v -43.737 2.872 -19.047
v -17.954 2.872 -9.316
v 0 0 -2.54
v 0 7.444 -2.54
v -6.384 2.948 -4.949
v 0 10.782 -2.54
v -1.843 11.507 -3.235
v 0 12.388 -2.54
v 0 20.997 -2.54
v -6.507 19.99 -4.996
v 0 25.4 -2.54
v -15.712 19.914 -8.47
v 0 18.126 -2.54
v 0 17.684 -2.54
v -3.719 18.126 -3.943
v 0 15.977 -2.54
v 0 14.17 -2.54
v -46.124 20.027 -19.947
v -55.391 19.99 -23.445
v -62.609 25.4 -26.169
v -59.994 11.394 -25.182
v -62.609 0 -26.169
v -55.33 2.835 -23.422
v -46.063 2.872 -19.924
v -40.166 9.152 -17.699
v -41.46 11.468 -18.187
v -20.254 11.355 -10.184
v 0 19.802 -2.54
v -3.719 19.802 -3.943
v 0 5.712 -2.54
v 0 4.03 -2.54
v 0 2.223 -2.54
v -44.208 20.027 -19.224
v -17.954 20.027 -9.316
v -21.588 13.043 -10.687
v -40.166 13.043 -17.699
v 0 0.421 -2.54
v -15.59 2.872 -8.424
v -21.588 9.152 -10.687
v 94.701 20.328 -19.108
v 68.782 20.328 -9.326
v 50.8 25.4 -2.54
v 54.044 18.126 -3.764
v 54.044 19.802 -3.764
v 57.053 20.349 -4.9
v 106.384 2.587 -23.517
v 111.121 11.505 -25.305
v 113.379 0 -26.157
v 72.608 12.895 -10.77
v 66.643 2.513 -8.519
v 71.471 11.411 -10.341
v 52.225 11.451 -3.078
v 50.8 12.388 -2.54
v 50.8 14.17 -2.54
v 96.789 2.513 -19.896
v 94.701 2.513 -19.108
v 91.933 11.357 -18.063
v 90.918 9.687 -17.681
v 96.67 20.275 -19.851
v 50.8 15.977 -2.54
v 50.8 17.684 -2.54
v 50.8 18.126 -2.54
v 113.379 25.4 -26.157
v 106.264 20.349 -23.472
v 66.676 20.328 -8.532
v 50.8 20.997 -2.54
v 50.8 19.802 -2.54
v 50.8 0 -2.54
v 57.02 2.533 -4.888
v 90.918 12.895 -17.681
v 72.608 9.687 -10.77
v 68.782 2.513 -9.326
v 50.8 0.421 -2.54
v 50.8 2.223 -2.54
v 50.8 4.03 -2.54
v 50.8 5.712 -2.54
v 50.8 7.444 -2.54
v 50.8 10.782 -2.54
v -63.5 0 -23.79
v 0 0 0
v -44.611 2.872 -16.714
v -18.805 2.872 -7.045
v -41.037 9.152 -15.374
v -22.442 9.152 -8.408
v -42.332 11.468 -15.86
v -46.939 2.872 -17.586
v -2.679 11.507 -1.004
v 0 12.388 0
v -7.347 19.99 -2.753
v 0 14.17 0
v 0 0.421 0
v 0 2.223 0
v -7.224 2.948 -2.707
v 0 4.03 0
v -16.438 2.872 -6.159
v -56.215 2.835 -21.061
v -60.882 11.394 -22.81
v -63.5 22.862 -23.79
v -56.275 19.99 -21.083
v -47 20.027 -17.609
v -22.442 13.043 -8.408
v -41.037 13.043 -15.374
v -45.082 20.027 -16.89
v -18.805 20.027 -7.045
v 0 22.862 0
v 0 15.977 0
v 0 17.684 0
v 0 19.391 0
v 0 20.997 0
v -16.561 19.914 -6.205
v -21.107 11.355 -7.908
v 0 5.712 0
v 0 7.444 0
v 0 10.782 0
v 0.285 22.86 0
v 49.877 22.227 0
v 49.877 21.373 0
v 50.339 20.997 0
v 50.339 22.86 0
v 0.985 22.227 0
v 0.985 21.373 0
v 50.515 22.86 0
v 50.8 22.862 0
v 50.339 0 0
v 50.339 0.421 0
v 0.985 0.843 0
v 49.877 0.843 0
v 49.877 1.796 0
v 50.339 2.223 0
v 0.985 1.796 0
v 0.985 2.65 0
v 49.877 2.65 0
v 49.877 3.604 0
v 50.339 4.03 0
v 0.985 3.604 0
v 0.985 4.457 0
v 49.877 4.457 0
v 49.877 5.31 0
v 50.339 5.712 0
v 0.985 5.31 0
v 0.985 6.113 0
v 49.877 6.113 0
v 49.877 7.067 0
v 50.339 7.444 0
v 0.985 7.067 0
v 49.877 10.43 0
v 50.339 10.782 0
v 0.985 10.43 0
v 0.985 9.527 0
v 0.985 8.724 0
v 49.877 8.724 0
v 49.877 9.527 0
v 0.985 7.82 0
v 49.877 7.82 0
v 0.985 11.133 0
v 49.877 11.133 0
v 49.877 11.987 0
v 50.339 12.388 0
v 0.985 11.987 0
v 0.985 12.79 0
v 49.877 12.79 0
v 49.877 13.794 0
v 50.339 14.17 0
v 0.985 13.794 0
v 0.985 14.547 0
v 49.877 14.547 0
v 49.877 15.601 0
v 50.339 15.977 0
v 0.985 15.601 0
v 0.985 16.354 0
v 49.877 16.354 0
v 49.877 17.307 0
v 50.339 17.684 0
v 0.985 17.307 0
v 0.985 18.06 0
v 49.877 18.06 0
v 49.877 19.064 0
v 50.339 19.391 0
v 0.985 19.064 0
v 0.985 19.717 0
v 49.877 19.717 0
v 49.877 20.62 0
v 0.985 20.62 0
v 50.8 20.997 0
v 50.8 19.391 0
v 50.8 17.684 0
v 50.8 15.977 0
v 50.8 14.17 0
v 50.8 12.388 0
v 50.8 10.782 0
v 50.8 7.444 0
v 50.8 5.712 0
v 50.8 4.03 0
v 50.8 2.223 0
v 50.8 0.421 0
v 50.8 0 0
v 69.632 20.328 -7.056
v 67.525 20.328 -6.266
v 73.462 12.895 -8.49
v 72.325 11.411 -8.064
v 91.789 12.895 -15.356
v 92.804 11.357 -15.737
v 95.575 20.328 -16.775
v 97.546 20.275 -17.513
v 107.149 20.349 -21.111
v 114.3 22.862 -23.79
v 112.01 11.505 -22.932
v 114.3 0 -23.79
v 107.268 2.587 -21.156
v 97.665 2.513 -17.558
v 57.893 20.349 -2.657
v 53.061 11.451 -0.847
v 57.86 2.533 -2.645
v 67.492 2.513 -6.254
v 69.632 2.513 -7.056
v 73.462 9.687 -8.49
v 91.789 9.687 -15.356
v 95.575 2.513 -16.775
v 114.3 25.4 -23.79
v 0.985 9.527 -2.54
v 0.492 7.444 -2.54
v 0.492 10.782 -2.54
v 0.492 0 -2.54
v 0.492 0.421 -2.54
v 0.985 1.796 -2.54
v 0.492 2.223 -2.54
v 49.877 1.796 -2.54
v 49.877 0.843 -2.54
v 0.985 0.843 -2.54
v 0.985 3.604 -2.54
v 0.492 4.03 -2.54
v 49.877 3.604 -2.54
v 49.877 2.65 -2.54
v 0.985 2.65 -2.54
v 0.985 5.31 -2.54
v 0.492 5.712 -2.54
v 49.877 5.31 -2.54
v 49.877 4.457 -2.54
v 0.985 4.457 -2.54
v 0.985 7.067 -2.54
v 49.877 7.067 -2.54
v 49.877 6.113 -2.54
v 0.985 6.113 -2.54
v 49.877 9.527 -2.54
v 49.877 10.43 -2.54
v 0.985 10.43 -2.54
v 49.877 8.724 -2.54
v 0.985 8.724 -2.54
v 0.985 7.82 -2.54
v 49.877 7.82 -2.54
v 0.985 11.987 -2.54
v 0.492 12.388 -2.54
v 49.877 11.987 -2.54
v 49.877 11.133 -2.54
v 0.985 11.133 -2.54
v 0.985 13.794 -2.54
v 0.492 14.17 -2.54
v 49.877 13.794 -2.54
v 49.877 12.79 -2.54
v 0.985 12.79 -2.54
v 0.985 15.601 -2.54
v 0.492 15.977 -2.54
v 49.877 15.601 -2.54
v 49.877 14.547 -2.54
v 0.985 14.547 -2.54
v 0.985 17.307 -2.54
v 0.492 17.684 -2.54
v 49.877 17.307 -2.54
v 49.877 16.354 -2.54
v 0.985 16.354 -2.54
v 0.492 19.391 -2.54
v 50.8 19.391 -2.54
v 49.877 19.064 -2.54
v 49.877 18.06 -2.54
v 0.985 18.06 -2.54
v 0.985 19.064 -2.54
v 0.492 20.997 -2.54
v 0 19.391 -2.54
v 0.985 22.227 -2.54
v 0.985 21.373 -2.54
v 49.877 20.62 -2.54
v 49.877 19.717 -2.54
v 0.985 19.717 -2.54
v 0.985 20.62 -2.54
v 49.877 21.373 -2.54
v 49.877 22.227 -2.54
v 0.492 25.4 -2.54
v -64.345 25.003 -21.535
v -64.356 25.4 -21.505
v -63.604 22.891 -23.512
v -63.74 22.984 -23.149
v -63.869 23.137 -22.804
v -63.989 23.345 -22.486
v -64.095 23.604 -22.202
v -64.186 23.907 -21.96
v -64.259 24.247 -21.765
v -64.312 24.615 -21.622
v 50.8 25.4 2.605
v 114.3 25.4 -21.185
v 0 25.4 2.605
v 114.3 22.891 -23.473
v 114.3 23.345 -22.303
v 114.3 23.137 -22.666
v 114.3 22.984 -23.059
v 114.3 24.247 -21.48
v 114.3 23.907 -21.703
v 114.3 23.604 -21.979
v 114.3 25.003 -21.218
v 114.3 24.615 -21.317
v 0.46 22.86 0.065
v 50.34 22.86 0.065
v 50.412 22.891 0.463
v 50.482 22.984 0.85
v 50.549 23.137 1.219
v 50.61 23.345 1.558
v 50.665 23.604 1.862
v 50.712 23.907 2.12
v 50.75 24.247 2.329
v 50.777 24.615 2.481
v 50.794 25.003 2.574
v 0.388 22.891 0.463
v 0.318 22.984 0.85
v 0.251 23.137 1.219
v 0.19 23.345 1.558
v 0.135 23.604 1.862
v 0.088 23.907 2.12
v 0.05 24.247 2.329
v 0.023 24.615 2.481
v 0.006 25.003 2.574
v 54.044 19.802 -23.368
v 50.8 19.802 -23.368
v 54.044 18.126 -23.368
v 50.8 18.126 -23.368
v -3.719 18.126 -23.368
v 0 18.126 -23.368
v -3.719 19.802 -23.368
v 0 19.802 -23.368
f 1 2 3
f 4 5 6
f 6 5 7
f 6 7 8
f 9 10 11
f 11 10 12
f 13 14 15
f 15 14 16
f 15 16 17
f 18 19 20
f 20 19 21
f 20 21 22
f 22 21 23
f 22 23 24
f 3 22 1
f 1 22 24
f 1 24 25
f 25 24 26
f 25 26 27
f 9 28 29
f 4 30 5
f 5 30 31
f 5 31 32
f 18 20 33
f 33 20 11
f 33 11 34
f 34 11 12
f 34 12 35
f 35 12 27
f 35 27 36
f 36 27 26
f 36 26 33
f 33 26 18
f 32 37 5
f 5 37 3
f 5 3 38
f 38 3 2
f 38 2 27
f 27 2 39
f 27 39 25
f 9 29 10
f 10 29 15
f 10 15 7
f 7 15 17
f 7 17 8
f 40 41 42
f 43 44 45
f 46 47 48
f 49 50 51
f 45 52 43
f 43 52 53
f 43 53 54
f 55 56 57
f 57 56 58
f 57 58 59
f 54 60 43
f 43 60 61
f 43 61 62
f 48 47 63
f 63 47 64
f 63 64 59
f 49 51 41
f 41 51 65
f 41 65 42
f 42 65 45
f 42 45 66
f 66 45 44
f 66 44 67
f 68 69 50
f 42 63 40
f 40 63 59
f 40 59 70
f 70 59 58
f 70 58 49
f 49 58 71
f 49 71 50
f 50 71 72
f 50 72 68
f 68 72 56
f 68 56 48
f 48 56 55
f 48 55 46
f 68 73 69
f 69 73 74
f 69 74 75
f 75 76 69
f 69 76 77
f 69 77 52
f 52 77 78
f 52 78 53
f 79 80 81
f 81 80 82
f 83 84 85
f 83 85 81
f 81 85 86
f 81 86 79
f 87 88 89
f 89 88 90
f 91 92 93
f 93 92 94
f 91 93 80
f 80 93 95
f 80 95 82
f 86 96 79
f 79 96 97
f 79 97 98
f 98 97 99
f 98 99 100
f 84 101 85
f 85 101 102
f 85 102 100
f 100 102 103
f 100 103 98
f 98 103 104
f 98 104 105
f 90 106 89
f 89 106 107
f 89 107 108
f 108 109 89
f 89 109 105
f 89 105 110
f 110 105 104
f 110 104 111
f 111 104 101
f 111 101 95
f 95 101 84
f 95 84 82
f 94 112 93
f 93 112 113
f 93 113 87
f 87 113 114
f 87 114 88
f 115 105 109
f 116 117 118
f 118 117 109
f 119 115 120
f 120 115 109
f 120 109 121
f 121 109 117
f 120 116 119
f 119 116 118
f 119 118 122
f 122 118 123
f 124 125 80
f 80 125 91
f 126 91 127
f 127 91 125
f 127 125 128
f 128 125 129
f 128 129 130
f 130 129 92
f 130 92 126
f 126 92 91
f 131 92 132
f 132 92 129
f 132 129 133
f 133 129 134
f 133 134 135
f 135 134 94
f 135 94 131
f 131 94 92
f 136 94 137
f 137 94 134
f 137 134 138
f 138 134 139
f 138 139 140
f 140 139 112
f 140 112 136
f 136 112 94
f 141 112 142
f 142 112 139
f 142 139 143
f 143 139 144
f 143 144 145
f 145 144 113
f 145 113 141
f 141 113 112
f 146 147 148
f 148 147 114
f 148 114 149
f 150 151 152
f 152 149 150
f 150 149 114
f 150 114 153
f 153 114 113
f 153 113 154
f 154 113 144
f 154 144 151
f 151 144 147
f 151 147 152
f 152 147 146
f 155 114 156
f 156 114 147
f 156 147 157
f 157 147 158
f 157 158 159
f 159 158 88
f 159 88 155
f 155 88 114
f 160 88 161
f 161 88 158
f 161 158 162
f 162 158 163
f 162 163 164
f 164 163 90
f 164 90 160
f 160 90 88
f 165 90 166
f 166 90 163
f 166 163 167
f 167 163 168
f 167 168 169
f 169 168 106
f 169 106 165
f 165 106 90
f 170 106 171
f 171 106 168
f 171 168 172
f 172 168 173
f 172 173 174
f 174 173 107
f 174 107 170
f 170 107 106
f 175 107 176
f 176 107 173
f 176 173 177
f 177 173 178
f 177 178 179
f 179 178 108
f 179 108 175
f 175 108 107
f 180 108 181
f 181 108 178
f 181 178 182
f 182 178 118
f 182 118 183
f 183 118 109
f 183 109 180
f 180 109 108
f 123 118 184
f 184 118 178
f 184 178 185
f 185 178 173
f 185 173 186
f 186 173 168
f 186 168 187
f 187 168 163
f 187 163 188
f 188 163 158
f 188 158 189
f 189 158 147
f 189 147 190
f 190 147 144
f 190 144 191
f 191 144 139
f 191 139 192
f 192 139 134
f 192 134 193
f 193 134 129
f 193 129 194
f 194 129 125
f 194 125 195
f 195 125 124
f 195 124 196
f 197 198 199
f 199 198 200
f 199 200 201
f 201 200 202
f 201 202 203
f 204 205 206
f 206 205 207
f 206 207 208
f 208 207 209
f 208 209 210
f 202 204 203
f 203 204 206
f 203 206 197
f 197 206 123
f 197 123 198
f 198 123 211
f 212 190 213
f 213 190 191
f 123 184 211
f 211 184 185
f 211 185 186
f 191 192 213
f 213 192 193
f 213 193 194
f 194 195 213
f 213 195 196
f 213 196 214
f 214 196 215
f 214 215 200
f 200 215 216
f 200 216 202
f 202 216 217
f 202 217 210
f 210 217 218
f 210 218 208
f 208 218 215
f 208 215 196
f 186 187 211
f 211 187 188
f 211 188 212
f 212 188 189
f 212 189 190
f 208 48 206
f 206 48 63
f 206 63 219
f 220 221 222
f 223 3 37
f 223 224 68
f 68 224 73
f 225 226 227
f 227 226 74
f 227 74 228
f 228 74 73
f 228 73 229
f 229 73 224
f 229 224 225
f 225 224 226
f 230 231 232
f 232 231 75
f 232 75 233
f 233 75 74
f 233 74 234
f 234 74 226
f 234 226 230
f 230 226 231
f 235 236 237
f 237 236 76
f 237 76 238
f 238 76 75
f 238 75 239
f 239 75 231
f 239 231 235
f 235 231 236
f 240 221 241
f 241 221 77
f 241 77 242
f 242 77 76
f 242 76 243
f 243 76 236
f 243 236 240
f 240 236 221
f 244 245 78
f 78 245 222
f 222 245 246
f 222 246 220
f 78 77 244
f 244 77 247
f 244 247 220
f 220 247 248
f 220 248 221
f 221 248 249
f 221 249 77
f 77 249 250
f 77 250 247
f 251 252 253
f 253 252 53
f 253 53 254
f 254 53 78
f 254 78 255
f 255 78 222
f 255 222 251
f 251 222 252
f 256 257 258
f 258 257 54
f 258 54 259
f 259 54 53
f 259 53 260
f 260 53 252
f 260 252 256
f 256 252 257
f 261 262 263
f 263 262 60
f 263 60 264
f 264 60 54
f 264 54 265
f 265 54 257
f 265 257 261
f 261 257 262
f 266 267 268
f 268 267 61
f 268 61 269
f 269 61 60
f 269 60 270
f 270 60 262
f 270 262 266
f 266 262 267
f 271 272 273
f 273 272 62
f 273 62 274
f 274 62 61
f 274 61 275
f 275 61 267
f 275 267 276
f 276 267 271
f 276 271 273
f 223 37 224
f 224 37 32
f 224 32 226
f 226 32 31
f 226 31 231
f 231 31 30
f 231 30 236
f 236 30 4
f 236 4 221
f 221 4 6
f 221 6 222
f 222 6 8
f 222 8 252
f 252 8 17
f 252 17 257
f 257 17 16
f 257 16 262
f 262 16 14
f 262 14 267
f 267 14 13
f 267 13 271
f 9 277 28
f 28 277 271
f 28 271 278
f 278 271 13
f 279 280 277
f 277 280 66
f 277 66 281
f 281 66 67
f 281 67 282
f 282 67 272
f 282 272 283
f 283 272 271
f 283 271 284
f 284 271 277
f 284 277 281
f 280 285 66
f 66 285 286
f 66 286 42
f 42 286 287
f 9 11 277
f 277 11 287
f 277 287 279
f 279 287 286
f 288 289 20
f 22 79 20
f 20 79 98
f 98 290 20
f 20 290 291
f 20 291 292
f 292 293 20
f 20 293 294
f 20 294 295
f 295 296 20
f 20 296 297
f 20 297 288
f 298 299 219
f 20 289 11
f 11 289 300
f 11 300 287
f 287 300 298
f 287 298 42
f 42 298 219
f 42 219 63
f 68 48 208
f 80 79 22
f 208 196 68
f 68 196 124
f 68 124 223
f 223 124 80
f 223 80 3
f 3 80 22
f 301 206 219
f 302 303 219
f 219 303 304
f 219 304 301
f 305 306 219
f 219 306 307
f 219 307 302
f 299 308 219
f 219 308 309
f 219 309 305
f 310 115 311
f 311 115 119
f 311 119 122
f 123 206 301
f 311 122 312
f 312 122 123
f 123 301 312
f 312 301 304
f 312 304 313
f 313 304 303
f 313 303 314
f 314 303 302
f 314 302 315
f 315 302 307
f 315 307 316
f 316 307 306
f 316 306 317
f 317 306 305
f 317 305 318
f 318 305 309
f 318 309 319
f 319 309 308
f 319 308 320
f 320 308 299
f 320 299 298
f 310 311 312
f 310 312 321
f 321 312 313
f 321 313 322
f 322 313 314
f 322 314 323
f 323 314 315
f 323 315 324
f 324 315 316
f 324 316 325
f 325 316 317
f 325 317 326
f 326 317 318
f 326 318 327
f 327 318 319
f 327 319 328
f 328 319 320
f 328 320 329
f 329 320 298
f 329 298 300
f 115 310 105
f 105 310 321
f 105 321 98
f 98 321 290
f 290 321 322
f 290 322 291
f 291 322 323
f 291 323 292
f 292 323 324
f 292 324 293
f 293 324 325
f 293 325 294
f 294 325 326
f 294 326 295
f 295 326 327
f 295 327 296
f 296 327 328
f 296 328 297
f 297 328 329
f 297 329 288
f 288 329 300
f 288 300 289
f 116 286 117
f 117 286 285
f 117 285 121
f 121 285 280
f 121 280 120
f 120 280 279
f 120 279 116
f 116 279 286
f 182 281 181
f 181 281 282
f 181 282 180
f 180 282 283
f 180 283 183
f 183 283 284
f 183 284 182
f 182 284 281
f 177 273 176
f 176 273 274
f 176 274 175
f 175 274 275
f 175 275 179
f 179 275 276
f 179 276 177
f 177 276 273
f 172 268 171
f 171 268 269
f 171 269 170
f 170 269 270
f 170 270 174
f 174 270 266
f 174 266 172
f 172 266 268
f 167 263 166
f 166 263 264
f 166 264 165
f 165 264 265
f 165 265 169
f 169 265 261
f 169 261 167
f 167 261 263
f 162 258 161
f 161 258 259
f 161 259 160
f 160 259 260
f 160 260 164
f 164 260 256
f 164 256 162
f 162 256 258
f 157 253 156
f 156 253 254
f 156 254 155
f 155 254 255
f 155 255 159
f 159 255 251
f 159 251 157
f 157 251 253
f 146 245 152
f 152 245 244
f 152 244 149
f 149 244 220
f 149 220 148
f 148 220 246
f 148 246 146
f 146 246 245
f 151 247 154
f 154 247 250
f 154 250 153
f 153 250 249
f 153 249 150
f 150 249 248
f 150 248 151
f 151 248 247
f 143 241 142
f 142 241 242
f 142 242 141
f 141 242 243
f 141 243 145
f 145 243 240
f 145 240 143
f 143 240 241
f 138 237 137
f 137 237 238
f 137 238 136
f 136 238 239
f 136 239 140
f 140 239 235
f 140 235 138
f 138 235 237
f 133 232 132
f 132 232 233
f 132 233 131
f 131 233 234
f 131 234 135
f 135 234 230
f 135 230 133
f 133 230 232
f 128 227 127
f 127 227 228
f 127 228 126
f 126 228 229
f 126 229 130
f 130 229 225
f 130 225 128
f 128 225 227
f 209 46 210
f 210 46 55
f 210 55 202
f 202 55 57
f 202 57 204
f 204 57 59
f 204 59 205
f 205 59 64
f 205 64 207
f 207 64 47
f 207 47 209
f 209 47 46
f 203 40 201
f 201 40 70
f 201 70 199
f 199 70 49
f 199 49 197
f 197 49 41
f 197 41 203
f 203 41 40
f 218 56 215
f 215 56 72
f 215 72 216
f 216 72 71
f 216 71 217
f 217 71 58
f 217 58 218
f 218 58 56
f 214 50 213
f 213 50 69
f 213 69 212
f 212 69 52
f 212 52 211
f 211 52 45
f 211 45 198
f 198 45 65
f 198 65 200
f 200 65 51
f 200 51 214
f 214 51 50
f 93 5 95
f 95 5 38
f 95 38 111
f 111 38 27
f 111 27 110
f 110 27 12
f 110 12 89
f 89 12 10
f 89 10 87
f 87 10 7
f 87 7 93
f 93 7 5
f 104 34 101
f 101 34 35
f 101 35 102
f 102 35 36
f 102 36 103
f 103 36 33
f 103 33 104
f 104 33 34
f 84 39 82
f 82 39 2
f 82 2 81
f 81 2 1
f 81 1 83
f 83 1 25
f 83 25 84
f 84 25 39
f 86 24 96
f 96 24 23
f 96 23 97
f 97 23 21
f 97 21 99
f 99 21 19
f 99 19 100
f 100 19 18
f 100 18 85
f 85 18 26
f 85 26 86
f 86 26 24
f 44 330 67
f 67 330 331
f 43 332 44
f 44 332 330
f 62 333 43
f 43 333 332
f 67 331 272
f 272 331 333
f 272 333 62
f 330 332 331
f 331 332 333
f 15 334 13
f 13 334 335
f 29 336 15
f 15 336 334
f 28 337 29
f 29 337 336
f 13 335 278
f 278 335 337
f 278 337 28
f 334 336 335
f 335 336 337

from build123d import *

# Parameters (mm, degrees)
BOSS_EXTRUDE1_DEPTH = 25.4
BOSS_EXTRUDE2_DEPTH = 2.54
FILLET1_R           = 2.54
SKETCH4_W           = 48.892470686
SKETCH4_H           = 0.953754561
SKETCH4_H_2         = 0.953754562
SKETCH4_H_3         = 0.853359345
SKETCH4_H_4         = 0.903556953
SKETCH4_H_5         = 0.853359344
SKETCH4_H_6         = 1.00395217
SKETCH4_H_7         = 1.054149779
CUT_EXTRUDE1_DEPTH  = 4.572
CUT_EXTRUDE2_DEPTH  = 4.572
CUT_EXTRUDE3_DEPTH  = 4.572
SKETCH7_W           = 3.24434763
SKETCH7_H           = 1.675925382
SKETCH7_W_2         = 3.718505185
BOSS_EXTRUDE3_DEPTH = 20.828


with BuildPart() as part:
    # Sketch1 → Boss-Extrude1 (new body)
    with BuildSketch(Plane(origin=(0, 0, 0), x_dir=(1, 0, 0), z_dir=(0, 1, 0))):
        Polygon((0, 0), (50.8, 0), (114.3, 23.790225691), (113.37882382, 26.157298661), (50.8, 2.54), (0, 2.54), (-62.608877976, 26.168775993), (-63.5, 23.790225691), align=None)
    extrude(amount=BOSS_EXTRUDE1_DEPTH)

    # Sketch3 → Boss-Extrude2 (add)
    with BuildSketch(Plane(origin=(0, 25.4, 0), x_dir=(1, 0, 0), z_dir=(0, 1, 0))):
        Polygon((-63.5, 23.790225691), (0, 0), (50.8, 0), (114.3, 23.790225691), (114.3, 21.184727317), (50.8, -2.605498375), (0, -2.605498375), (-64.355998278, 21.505426407), align=None)
    extrude(amount=-BOSS_EXTRUDE2_DEPTH)

    # Fillet1
    # the kernel refuses this fillet: 2.54 mm, written as the material it takes off along each edge
    with BuildSketch(Plane(origin=(5.946375755, 22.86, 4.833303434), x_dir=(0, 1, 0), z_dir=(-0.9364371267563882, 0, -0.35083544238323483))) as fillet1_piece_1_section:
        with BuildLine():
            CenterArc((FILLET1_R, FILLET1_R), FILLET1_R, 180, 90)
            Line((0, FILLET1_R), (0, 0))
            Line((0, 0), (FILLET1_R, 0))
        make_face()
    fillet1_piece_1 = extrude(amount=81.424313079, mode=Mode.PRIVATE)
    fillet1_piece_1 = split(fillet1_piece_1, bisect_by=Plane(origin=(0.305909805, 23.474834282, 0), z_dir=(0, 0, 1)), keep=Keep.TOP, mode=Mode.PRIVATE)
    fillet1_piece_1 = split(fillet1_piece_1, bisect_by=Plane(origin=(0.984368862, 23.474834282, 0.36879303), z_dir=(-0.35083544238323505, 0, 0.9364371267563881)), keep=Keep.TOP, mode=Mode.PRIVATE)
    add(fillet1_piece_1, mode=Mode.SUBTRACT)
    with BuildSketch(Plane(origin=(5.946375755, 22.86, 4.833303434), x_dir=(0, 1, 0), z_dir=(-0.9364371267563882, 0, -0.35083544238323483))) as fillet1_piece_2_section:
        with BuildLine():
            CenterArc((FILLET1_R, FILLET1_R), FILLET1_R, 180, 90)
            Line((0, FILLET1_R), (0, 0))
            Line((0, 0), (FILLET1_R, 0))
        make_face()
    fillet1_piece_2 = extrude(amount=81.424313079, mode=Mode.PRIVATE)
    fillet1_piece_2 = split(fillet1_piece_2, bisect_by=Plane(origin=(3.480294326, 22.834935374, 0), z_dir=(0, 0, 1)), keep=Keep.TOP, mode=Mode.PRIVATE)
    fillet1_piece_2 = split(fillet1_piece_2, bisect_by=Plane(origin=(3.46295466, 22.834935374, 1.297393274), z_dir=(0.35083544238323505, 0, -0.9364371267563881)), keep=Keep.TOP, mode=Mode.PRIVATE)
    add(fillet1_piece_2, mode=Mode.SUBTRACT)
    with BuildSketch(Plane(origin=(5.946375755, 22.86, 4.833303434), x_dir=(0, 1, 0), z_dir=(-0.9364371267563882, 0, -0.35083544238323483))) as fillet1_piece_3_section:
        with BuildLine():
            CenterArc((FILLET1_R, FILLET1_R), FILLET1_R, 180, 90)
            Line((0, FILLET1_R), (0, 0))
            Line((0, 0), (FILLET1_R, 0))
        make_face()
    fillet1_piece_3 = extrude(amount=81.424313079, mode=Mode.PRIVATE)
    fillet1_piece_3 = split(fillet1_piece_3, bisect_by=Plane(origin=(-37.699790788, 23.430211039, 0), z_dir=(0, 0, -1)), keep=Keep.TOP, mode=Mode.PRIVATE)
    fillet1_piece_3 = split(fillet1_piece_3, bisect_by=Plane(origin=(-37.047344153, 23.430211039, -13.879758719), z_dir=(-0.35083544238323505, 0, 0.9364371267563881)), keep=Keep.TOP, mode=Mode.PRIVATE)
    add(fillet1_piece_3, mode=Mode.SUBTRACT)
    with BuildSketch(Plane(origin=(57.15, 22.86, 2.605498375), x_dir=(0, 1, 0), z_dir=(-1, 0, 0))) as fillet1_piece_4:
        with BuildLine():
            CenterArc((FILLET1_R, FILLET1_R), FILLET1_R, 180, 90)
            Line((0, FILLET1_R), (0, 0))
            Line((0, 0), (FILLET1_R, 0))
        make_face()
    extrude(amount=63.5, mode=Mode.SUBTRACT)
    with BuildSketch(Plane(origin=(120.246375755, 22.86, -23.412532376), x_dir=(0, 1, 0), z_dir=(-0.9364371267563881, 0, 0.3508354423832351))) as fillet1_piece_5_section:
        with BuildLine():
            CenterArc((FILLET1_R, FILLET1_R), FILLET1_R, 180, 90)
            Line((0, FILLET1_R), (0, 0))
            Line((0, 0), (FILLET1_R, 0))
        make_face()
    fillet1_piece_5 = extrude(amount=80.510211904, mode=Mode.PRIVATE)
    fillet1_piece_5 = split(fillet1_piece_5, bisect_by=Plane(origin=(88.071552379, 23.43012107, 0), z_dir=(0, 0, -1)), keep=Keep.TOP, mode=Mode.PRIVATE)
    fillet1_piece_5 = split(fillet1_piece_5, bisect_by=Plane(origin=(87.41915819, 23.43012107, -13.719339181), z_dir=(0.35083544238323505, 0, 0.9364371267563881)), keep=Keep.TOP, mode=Mode.PRIVATE)
    add(fillet1_piece_5, mode=Mode.SUBTRACT)
    with BuildSketch(Plane(origin=(120.246375755, 22.86, -23.412532376), x_dir=(0, 1, 0), z_dir=(-0.9364371267563881, 0, 0.3508354423832351))) as fillet1_piece_6_section:
        with BuildLine():
            CenterArc((FILLET1_R, FILLET1_R), FILLET1_R, 180, 90)
            Line((0, FILLET1_R), (0, 0))
            Line((0, 0), (FILLET1_R, 0))
        make_face()
    fillet1_piece_6 = extrude(amount=80.510211904, mode=Mode.PRIVATE)
    fillet1_piece_6 = split(fillet1_piece_6, bisect_by=Plane(origin=(50.494090195, 23.474834282, 0), z_dir=(0, 0, 1)), keep=Keep.TOP, mode=Mode.PRIVATE)
    fillet1_piece_6 = split(fillet1_piece_6, bisect_by=Plane(origin=(49.815631138, 23.474834282, 0.36879303), z_dir=(0.35083544238323505, 0, 0.9364371267563881)), keep=Keep.TOP, mode=Mode.PRIVATE)
    add(fillet1_piece_6, mode=Mode.SUBTRACT)
    with BuildSketch(Plane(origin=(120.246375755, 22.86, -23.412532376), x_dir=(0, 1, 0), z_dir=(-0.9364371267563881, 0, 0.3508354423832351))) as fillet1_piece_7_section:
        with BuildLine():
            CenterArc((FILLET1_R, FILLET1_R), FILLET1_R, 180, 90)
            Line((0, FILLET1_R), (0, 0))
            Line((0, 0), (FILLET1_R, 0))
        make_face()
    fillet1_piece_7 = extrude(amount=80.510211904, mode=Mode.PRIVATE)
    fillet1_piece_7 = split(fillet1_piece_7, bisect_by=Plane(origin=(47.319705674, 22.834935374, 0), z_dir=(0, 0, 1)), keep=Keep.TOP, mode=Mode.PRIVATE)
    fillet1_piece_7 = split(fillet1_piece_7, bisect_by=Plane(origin=(47.33704534, 22.834935374, 1.297393274), z_dir=(-0.35083544238323505, 0, -0.9364371267563881)), keep=Keep.TOP, mode=Mode.PRIVATE)
    add(fillet1_piece_7, mode=Mode.SUBTRACT)

    # Sketch4 → Cut-Extrude1 (cut)
    with BuildSketch(Plane.XY):
        with Locations((25.43082689, 1.319550291)):
            Rectangle(SKETCH4_W, SKETCH4_H)
        with Locations((25.43082689, 3.126664197)):
            Rectangle(SKETCH4_W, SKETCH4_H_2)
        with Locations((25.43082689, 4.883580495)):
            Rectangle(SKETCH4_W, SKETCH4_H_3)
        with Locations((25.43082689, 6.590299184)):
            Rectangle(SKETCH4_W, SKETCH4_H_2)
        with Locations((25.43082689, 8.271919069)):
            Rectangle(SKETCH4_W, SKETCH4_H_4)
        with Locations((25.43082689, 9.978637758)):
            Rectangle(SKETCH4_W, SKETCH4_H_4)
        with Locations((25.43082689, 11.559862426)):
            Rectangle(SKETCH4_W, SKETCH4_H_5)
        with Locations((25.43082689, 13.29167992)):
            Rectangle(SKETCH4_W, SKETCH4_H_6)
        with Locations((25.43082689, 15.073695022)):
            Rectangle(SKETCH4_W, SKETCH4_H_7)
        with Locations((25.43082689, 16.83061132)):
            Rectangle(SKETCH4_W, SKETCH4_H)
        with Locations((25.43082689, 18.562428813)):
            Rectangle(SKETCH4_W, SKETCH4_H_6)
        with Locations((25.43082689, 20.168752286)):
            Rectangle(SKETCH4_W, SKETCH4_H_4)
        with Locations((25.43082689, 21.800174562)):
            Rectangle(SKETCH4_W, SKETCH4_H_3)
    extrude(amount=-CUT_EXTRUDE1_DEPTH, mode=Mode.SUBTRACT)

    # Sketch5 → Cut-Extrude2 (cut)
    with BuildSketch(Plane(origin=(6.252743788, 0, 16.689594948), x_dir=(0.9364371267563881, 0, -0.35083544238323516), z_dir=(0.35083544238323516, 0, 0.9364371267563881))):
        Polygon((95.385492335, 2.513306314), (91.342188498, 9.687056546), (71.771776783, 9.687056546), (67.681786758, 2.513306314), align=None)
        Polygon((107.872330044, 2.586895642), (112.935981689, 11.50457622), (107.744869589, 20.34866747), (97.490105842, 20.275078142), (92.426454197, 11.357397564), (97.617566297, 2.513306314), align=None)
        Polygon((65.396301526, 2.513306314), (70.556591706, 11.410782697), (65.431296219, 20.328463275), (55.145710553, 20.34866747), (49.985420372, 11.451191088), (55.110715859, 2.53351051), align=None)
        Polygon((91.342188498, 12.895099362), (71.771776783, 12.895099362), (67.681786758, 20.328463275), (95.385492335, 20.328463275), align=None)
    extrude(amount=-CUT_EXTRUDE2_DEPTH, mode=Mode.SUBTRACT)

    # Sketch6 → Cut-Extrude3 (cut)
    with BuildSketch(Plane(origin=(0, 0, 0), x_dir=(0.9364371267563881, 0, 0.35083544238323516), z_dir=(-0.35083544238323516, 0, 0.9364371267563881))):
        Polygon((-20.081392491, 2.871915117), (-47.639225338, 2.871915117), (-43.82197308, 9.151723276), (-23.965625147, 9.151723276), align=None)
        Polygon((-7.714681248, 2.947668713), (-2.860571572, 11.506740488), (-7.845890325, 19.990058667), (-17.685318752, 19.914305072), (-22.539428428, 11.355233297), (-17.554109675, 2.871915117), align=None)
        Polygon((-50.125492855, 2.871915117), (-45.20547879, 11.468344332), (-50.190197838, 20.027416107), (-60.094930953, 19.990058667), (-65.014945018, 11.393629453), (-60.030225969, 2.834557678), align=None)
        Polygon((-23.965625147, 13.042600451), (-43.82197308, 13.042600451), (-48.142272105, 20.027416107), (-20.081392491, 20.027416107), align=None)
    extrude(amount=-CUT_EXTRUDE3_DEPTH, mode=Mode.SUBTRACT)

    # Sketch7 → Boss-Extrude3 (add)
    with BuildSketch(Plane(origin=(0, 0, -2.54), x_dir=(-1, 0, 0), z_dir=(0, 0, -1))):
        with Locations((-52.422173815, 18.963924101)):
            Rectangle(SKETCH7_W, SKETCH7_H)
        with Locations((1.859252593, 18.963924101)):
            Rectangle(SKETCH7_W_2, SKETCH7_H)
    extrude(amount=BOSS_EXTRUDE3_DEPTH)


solid = part.part
